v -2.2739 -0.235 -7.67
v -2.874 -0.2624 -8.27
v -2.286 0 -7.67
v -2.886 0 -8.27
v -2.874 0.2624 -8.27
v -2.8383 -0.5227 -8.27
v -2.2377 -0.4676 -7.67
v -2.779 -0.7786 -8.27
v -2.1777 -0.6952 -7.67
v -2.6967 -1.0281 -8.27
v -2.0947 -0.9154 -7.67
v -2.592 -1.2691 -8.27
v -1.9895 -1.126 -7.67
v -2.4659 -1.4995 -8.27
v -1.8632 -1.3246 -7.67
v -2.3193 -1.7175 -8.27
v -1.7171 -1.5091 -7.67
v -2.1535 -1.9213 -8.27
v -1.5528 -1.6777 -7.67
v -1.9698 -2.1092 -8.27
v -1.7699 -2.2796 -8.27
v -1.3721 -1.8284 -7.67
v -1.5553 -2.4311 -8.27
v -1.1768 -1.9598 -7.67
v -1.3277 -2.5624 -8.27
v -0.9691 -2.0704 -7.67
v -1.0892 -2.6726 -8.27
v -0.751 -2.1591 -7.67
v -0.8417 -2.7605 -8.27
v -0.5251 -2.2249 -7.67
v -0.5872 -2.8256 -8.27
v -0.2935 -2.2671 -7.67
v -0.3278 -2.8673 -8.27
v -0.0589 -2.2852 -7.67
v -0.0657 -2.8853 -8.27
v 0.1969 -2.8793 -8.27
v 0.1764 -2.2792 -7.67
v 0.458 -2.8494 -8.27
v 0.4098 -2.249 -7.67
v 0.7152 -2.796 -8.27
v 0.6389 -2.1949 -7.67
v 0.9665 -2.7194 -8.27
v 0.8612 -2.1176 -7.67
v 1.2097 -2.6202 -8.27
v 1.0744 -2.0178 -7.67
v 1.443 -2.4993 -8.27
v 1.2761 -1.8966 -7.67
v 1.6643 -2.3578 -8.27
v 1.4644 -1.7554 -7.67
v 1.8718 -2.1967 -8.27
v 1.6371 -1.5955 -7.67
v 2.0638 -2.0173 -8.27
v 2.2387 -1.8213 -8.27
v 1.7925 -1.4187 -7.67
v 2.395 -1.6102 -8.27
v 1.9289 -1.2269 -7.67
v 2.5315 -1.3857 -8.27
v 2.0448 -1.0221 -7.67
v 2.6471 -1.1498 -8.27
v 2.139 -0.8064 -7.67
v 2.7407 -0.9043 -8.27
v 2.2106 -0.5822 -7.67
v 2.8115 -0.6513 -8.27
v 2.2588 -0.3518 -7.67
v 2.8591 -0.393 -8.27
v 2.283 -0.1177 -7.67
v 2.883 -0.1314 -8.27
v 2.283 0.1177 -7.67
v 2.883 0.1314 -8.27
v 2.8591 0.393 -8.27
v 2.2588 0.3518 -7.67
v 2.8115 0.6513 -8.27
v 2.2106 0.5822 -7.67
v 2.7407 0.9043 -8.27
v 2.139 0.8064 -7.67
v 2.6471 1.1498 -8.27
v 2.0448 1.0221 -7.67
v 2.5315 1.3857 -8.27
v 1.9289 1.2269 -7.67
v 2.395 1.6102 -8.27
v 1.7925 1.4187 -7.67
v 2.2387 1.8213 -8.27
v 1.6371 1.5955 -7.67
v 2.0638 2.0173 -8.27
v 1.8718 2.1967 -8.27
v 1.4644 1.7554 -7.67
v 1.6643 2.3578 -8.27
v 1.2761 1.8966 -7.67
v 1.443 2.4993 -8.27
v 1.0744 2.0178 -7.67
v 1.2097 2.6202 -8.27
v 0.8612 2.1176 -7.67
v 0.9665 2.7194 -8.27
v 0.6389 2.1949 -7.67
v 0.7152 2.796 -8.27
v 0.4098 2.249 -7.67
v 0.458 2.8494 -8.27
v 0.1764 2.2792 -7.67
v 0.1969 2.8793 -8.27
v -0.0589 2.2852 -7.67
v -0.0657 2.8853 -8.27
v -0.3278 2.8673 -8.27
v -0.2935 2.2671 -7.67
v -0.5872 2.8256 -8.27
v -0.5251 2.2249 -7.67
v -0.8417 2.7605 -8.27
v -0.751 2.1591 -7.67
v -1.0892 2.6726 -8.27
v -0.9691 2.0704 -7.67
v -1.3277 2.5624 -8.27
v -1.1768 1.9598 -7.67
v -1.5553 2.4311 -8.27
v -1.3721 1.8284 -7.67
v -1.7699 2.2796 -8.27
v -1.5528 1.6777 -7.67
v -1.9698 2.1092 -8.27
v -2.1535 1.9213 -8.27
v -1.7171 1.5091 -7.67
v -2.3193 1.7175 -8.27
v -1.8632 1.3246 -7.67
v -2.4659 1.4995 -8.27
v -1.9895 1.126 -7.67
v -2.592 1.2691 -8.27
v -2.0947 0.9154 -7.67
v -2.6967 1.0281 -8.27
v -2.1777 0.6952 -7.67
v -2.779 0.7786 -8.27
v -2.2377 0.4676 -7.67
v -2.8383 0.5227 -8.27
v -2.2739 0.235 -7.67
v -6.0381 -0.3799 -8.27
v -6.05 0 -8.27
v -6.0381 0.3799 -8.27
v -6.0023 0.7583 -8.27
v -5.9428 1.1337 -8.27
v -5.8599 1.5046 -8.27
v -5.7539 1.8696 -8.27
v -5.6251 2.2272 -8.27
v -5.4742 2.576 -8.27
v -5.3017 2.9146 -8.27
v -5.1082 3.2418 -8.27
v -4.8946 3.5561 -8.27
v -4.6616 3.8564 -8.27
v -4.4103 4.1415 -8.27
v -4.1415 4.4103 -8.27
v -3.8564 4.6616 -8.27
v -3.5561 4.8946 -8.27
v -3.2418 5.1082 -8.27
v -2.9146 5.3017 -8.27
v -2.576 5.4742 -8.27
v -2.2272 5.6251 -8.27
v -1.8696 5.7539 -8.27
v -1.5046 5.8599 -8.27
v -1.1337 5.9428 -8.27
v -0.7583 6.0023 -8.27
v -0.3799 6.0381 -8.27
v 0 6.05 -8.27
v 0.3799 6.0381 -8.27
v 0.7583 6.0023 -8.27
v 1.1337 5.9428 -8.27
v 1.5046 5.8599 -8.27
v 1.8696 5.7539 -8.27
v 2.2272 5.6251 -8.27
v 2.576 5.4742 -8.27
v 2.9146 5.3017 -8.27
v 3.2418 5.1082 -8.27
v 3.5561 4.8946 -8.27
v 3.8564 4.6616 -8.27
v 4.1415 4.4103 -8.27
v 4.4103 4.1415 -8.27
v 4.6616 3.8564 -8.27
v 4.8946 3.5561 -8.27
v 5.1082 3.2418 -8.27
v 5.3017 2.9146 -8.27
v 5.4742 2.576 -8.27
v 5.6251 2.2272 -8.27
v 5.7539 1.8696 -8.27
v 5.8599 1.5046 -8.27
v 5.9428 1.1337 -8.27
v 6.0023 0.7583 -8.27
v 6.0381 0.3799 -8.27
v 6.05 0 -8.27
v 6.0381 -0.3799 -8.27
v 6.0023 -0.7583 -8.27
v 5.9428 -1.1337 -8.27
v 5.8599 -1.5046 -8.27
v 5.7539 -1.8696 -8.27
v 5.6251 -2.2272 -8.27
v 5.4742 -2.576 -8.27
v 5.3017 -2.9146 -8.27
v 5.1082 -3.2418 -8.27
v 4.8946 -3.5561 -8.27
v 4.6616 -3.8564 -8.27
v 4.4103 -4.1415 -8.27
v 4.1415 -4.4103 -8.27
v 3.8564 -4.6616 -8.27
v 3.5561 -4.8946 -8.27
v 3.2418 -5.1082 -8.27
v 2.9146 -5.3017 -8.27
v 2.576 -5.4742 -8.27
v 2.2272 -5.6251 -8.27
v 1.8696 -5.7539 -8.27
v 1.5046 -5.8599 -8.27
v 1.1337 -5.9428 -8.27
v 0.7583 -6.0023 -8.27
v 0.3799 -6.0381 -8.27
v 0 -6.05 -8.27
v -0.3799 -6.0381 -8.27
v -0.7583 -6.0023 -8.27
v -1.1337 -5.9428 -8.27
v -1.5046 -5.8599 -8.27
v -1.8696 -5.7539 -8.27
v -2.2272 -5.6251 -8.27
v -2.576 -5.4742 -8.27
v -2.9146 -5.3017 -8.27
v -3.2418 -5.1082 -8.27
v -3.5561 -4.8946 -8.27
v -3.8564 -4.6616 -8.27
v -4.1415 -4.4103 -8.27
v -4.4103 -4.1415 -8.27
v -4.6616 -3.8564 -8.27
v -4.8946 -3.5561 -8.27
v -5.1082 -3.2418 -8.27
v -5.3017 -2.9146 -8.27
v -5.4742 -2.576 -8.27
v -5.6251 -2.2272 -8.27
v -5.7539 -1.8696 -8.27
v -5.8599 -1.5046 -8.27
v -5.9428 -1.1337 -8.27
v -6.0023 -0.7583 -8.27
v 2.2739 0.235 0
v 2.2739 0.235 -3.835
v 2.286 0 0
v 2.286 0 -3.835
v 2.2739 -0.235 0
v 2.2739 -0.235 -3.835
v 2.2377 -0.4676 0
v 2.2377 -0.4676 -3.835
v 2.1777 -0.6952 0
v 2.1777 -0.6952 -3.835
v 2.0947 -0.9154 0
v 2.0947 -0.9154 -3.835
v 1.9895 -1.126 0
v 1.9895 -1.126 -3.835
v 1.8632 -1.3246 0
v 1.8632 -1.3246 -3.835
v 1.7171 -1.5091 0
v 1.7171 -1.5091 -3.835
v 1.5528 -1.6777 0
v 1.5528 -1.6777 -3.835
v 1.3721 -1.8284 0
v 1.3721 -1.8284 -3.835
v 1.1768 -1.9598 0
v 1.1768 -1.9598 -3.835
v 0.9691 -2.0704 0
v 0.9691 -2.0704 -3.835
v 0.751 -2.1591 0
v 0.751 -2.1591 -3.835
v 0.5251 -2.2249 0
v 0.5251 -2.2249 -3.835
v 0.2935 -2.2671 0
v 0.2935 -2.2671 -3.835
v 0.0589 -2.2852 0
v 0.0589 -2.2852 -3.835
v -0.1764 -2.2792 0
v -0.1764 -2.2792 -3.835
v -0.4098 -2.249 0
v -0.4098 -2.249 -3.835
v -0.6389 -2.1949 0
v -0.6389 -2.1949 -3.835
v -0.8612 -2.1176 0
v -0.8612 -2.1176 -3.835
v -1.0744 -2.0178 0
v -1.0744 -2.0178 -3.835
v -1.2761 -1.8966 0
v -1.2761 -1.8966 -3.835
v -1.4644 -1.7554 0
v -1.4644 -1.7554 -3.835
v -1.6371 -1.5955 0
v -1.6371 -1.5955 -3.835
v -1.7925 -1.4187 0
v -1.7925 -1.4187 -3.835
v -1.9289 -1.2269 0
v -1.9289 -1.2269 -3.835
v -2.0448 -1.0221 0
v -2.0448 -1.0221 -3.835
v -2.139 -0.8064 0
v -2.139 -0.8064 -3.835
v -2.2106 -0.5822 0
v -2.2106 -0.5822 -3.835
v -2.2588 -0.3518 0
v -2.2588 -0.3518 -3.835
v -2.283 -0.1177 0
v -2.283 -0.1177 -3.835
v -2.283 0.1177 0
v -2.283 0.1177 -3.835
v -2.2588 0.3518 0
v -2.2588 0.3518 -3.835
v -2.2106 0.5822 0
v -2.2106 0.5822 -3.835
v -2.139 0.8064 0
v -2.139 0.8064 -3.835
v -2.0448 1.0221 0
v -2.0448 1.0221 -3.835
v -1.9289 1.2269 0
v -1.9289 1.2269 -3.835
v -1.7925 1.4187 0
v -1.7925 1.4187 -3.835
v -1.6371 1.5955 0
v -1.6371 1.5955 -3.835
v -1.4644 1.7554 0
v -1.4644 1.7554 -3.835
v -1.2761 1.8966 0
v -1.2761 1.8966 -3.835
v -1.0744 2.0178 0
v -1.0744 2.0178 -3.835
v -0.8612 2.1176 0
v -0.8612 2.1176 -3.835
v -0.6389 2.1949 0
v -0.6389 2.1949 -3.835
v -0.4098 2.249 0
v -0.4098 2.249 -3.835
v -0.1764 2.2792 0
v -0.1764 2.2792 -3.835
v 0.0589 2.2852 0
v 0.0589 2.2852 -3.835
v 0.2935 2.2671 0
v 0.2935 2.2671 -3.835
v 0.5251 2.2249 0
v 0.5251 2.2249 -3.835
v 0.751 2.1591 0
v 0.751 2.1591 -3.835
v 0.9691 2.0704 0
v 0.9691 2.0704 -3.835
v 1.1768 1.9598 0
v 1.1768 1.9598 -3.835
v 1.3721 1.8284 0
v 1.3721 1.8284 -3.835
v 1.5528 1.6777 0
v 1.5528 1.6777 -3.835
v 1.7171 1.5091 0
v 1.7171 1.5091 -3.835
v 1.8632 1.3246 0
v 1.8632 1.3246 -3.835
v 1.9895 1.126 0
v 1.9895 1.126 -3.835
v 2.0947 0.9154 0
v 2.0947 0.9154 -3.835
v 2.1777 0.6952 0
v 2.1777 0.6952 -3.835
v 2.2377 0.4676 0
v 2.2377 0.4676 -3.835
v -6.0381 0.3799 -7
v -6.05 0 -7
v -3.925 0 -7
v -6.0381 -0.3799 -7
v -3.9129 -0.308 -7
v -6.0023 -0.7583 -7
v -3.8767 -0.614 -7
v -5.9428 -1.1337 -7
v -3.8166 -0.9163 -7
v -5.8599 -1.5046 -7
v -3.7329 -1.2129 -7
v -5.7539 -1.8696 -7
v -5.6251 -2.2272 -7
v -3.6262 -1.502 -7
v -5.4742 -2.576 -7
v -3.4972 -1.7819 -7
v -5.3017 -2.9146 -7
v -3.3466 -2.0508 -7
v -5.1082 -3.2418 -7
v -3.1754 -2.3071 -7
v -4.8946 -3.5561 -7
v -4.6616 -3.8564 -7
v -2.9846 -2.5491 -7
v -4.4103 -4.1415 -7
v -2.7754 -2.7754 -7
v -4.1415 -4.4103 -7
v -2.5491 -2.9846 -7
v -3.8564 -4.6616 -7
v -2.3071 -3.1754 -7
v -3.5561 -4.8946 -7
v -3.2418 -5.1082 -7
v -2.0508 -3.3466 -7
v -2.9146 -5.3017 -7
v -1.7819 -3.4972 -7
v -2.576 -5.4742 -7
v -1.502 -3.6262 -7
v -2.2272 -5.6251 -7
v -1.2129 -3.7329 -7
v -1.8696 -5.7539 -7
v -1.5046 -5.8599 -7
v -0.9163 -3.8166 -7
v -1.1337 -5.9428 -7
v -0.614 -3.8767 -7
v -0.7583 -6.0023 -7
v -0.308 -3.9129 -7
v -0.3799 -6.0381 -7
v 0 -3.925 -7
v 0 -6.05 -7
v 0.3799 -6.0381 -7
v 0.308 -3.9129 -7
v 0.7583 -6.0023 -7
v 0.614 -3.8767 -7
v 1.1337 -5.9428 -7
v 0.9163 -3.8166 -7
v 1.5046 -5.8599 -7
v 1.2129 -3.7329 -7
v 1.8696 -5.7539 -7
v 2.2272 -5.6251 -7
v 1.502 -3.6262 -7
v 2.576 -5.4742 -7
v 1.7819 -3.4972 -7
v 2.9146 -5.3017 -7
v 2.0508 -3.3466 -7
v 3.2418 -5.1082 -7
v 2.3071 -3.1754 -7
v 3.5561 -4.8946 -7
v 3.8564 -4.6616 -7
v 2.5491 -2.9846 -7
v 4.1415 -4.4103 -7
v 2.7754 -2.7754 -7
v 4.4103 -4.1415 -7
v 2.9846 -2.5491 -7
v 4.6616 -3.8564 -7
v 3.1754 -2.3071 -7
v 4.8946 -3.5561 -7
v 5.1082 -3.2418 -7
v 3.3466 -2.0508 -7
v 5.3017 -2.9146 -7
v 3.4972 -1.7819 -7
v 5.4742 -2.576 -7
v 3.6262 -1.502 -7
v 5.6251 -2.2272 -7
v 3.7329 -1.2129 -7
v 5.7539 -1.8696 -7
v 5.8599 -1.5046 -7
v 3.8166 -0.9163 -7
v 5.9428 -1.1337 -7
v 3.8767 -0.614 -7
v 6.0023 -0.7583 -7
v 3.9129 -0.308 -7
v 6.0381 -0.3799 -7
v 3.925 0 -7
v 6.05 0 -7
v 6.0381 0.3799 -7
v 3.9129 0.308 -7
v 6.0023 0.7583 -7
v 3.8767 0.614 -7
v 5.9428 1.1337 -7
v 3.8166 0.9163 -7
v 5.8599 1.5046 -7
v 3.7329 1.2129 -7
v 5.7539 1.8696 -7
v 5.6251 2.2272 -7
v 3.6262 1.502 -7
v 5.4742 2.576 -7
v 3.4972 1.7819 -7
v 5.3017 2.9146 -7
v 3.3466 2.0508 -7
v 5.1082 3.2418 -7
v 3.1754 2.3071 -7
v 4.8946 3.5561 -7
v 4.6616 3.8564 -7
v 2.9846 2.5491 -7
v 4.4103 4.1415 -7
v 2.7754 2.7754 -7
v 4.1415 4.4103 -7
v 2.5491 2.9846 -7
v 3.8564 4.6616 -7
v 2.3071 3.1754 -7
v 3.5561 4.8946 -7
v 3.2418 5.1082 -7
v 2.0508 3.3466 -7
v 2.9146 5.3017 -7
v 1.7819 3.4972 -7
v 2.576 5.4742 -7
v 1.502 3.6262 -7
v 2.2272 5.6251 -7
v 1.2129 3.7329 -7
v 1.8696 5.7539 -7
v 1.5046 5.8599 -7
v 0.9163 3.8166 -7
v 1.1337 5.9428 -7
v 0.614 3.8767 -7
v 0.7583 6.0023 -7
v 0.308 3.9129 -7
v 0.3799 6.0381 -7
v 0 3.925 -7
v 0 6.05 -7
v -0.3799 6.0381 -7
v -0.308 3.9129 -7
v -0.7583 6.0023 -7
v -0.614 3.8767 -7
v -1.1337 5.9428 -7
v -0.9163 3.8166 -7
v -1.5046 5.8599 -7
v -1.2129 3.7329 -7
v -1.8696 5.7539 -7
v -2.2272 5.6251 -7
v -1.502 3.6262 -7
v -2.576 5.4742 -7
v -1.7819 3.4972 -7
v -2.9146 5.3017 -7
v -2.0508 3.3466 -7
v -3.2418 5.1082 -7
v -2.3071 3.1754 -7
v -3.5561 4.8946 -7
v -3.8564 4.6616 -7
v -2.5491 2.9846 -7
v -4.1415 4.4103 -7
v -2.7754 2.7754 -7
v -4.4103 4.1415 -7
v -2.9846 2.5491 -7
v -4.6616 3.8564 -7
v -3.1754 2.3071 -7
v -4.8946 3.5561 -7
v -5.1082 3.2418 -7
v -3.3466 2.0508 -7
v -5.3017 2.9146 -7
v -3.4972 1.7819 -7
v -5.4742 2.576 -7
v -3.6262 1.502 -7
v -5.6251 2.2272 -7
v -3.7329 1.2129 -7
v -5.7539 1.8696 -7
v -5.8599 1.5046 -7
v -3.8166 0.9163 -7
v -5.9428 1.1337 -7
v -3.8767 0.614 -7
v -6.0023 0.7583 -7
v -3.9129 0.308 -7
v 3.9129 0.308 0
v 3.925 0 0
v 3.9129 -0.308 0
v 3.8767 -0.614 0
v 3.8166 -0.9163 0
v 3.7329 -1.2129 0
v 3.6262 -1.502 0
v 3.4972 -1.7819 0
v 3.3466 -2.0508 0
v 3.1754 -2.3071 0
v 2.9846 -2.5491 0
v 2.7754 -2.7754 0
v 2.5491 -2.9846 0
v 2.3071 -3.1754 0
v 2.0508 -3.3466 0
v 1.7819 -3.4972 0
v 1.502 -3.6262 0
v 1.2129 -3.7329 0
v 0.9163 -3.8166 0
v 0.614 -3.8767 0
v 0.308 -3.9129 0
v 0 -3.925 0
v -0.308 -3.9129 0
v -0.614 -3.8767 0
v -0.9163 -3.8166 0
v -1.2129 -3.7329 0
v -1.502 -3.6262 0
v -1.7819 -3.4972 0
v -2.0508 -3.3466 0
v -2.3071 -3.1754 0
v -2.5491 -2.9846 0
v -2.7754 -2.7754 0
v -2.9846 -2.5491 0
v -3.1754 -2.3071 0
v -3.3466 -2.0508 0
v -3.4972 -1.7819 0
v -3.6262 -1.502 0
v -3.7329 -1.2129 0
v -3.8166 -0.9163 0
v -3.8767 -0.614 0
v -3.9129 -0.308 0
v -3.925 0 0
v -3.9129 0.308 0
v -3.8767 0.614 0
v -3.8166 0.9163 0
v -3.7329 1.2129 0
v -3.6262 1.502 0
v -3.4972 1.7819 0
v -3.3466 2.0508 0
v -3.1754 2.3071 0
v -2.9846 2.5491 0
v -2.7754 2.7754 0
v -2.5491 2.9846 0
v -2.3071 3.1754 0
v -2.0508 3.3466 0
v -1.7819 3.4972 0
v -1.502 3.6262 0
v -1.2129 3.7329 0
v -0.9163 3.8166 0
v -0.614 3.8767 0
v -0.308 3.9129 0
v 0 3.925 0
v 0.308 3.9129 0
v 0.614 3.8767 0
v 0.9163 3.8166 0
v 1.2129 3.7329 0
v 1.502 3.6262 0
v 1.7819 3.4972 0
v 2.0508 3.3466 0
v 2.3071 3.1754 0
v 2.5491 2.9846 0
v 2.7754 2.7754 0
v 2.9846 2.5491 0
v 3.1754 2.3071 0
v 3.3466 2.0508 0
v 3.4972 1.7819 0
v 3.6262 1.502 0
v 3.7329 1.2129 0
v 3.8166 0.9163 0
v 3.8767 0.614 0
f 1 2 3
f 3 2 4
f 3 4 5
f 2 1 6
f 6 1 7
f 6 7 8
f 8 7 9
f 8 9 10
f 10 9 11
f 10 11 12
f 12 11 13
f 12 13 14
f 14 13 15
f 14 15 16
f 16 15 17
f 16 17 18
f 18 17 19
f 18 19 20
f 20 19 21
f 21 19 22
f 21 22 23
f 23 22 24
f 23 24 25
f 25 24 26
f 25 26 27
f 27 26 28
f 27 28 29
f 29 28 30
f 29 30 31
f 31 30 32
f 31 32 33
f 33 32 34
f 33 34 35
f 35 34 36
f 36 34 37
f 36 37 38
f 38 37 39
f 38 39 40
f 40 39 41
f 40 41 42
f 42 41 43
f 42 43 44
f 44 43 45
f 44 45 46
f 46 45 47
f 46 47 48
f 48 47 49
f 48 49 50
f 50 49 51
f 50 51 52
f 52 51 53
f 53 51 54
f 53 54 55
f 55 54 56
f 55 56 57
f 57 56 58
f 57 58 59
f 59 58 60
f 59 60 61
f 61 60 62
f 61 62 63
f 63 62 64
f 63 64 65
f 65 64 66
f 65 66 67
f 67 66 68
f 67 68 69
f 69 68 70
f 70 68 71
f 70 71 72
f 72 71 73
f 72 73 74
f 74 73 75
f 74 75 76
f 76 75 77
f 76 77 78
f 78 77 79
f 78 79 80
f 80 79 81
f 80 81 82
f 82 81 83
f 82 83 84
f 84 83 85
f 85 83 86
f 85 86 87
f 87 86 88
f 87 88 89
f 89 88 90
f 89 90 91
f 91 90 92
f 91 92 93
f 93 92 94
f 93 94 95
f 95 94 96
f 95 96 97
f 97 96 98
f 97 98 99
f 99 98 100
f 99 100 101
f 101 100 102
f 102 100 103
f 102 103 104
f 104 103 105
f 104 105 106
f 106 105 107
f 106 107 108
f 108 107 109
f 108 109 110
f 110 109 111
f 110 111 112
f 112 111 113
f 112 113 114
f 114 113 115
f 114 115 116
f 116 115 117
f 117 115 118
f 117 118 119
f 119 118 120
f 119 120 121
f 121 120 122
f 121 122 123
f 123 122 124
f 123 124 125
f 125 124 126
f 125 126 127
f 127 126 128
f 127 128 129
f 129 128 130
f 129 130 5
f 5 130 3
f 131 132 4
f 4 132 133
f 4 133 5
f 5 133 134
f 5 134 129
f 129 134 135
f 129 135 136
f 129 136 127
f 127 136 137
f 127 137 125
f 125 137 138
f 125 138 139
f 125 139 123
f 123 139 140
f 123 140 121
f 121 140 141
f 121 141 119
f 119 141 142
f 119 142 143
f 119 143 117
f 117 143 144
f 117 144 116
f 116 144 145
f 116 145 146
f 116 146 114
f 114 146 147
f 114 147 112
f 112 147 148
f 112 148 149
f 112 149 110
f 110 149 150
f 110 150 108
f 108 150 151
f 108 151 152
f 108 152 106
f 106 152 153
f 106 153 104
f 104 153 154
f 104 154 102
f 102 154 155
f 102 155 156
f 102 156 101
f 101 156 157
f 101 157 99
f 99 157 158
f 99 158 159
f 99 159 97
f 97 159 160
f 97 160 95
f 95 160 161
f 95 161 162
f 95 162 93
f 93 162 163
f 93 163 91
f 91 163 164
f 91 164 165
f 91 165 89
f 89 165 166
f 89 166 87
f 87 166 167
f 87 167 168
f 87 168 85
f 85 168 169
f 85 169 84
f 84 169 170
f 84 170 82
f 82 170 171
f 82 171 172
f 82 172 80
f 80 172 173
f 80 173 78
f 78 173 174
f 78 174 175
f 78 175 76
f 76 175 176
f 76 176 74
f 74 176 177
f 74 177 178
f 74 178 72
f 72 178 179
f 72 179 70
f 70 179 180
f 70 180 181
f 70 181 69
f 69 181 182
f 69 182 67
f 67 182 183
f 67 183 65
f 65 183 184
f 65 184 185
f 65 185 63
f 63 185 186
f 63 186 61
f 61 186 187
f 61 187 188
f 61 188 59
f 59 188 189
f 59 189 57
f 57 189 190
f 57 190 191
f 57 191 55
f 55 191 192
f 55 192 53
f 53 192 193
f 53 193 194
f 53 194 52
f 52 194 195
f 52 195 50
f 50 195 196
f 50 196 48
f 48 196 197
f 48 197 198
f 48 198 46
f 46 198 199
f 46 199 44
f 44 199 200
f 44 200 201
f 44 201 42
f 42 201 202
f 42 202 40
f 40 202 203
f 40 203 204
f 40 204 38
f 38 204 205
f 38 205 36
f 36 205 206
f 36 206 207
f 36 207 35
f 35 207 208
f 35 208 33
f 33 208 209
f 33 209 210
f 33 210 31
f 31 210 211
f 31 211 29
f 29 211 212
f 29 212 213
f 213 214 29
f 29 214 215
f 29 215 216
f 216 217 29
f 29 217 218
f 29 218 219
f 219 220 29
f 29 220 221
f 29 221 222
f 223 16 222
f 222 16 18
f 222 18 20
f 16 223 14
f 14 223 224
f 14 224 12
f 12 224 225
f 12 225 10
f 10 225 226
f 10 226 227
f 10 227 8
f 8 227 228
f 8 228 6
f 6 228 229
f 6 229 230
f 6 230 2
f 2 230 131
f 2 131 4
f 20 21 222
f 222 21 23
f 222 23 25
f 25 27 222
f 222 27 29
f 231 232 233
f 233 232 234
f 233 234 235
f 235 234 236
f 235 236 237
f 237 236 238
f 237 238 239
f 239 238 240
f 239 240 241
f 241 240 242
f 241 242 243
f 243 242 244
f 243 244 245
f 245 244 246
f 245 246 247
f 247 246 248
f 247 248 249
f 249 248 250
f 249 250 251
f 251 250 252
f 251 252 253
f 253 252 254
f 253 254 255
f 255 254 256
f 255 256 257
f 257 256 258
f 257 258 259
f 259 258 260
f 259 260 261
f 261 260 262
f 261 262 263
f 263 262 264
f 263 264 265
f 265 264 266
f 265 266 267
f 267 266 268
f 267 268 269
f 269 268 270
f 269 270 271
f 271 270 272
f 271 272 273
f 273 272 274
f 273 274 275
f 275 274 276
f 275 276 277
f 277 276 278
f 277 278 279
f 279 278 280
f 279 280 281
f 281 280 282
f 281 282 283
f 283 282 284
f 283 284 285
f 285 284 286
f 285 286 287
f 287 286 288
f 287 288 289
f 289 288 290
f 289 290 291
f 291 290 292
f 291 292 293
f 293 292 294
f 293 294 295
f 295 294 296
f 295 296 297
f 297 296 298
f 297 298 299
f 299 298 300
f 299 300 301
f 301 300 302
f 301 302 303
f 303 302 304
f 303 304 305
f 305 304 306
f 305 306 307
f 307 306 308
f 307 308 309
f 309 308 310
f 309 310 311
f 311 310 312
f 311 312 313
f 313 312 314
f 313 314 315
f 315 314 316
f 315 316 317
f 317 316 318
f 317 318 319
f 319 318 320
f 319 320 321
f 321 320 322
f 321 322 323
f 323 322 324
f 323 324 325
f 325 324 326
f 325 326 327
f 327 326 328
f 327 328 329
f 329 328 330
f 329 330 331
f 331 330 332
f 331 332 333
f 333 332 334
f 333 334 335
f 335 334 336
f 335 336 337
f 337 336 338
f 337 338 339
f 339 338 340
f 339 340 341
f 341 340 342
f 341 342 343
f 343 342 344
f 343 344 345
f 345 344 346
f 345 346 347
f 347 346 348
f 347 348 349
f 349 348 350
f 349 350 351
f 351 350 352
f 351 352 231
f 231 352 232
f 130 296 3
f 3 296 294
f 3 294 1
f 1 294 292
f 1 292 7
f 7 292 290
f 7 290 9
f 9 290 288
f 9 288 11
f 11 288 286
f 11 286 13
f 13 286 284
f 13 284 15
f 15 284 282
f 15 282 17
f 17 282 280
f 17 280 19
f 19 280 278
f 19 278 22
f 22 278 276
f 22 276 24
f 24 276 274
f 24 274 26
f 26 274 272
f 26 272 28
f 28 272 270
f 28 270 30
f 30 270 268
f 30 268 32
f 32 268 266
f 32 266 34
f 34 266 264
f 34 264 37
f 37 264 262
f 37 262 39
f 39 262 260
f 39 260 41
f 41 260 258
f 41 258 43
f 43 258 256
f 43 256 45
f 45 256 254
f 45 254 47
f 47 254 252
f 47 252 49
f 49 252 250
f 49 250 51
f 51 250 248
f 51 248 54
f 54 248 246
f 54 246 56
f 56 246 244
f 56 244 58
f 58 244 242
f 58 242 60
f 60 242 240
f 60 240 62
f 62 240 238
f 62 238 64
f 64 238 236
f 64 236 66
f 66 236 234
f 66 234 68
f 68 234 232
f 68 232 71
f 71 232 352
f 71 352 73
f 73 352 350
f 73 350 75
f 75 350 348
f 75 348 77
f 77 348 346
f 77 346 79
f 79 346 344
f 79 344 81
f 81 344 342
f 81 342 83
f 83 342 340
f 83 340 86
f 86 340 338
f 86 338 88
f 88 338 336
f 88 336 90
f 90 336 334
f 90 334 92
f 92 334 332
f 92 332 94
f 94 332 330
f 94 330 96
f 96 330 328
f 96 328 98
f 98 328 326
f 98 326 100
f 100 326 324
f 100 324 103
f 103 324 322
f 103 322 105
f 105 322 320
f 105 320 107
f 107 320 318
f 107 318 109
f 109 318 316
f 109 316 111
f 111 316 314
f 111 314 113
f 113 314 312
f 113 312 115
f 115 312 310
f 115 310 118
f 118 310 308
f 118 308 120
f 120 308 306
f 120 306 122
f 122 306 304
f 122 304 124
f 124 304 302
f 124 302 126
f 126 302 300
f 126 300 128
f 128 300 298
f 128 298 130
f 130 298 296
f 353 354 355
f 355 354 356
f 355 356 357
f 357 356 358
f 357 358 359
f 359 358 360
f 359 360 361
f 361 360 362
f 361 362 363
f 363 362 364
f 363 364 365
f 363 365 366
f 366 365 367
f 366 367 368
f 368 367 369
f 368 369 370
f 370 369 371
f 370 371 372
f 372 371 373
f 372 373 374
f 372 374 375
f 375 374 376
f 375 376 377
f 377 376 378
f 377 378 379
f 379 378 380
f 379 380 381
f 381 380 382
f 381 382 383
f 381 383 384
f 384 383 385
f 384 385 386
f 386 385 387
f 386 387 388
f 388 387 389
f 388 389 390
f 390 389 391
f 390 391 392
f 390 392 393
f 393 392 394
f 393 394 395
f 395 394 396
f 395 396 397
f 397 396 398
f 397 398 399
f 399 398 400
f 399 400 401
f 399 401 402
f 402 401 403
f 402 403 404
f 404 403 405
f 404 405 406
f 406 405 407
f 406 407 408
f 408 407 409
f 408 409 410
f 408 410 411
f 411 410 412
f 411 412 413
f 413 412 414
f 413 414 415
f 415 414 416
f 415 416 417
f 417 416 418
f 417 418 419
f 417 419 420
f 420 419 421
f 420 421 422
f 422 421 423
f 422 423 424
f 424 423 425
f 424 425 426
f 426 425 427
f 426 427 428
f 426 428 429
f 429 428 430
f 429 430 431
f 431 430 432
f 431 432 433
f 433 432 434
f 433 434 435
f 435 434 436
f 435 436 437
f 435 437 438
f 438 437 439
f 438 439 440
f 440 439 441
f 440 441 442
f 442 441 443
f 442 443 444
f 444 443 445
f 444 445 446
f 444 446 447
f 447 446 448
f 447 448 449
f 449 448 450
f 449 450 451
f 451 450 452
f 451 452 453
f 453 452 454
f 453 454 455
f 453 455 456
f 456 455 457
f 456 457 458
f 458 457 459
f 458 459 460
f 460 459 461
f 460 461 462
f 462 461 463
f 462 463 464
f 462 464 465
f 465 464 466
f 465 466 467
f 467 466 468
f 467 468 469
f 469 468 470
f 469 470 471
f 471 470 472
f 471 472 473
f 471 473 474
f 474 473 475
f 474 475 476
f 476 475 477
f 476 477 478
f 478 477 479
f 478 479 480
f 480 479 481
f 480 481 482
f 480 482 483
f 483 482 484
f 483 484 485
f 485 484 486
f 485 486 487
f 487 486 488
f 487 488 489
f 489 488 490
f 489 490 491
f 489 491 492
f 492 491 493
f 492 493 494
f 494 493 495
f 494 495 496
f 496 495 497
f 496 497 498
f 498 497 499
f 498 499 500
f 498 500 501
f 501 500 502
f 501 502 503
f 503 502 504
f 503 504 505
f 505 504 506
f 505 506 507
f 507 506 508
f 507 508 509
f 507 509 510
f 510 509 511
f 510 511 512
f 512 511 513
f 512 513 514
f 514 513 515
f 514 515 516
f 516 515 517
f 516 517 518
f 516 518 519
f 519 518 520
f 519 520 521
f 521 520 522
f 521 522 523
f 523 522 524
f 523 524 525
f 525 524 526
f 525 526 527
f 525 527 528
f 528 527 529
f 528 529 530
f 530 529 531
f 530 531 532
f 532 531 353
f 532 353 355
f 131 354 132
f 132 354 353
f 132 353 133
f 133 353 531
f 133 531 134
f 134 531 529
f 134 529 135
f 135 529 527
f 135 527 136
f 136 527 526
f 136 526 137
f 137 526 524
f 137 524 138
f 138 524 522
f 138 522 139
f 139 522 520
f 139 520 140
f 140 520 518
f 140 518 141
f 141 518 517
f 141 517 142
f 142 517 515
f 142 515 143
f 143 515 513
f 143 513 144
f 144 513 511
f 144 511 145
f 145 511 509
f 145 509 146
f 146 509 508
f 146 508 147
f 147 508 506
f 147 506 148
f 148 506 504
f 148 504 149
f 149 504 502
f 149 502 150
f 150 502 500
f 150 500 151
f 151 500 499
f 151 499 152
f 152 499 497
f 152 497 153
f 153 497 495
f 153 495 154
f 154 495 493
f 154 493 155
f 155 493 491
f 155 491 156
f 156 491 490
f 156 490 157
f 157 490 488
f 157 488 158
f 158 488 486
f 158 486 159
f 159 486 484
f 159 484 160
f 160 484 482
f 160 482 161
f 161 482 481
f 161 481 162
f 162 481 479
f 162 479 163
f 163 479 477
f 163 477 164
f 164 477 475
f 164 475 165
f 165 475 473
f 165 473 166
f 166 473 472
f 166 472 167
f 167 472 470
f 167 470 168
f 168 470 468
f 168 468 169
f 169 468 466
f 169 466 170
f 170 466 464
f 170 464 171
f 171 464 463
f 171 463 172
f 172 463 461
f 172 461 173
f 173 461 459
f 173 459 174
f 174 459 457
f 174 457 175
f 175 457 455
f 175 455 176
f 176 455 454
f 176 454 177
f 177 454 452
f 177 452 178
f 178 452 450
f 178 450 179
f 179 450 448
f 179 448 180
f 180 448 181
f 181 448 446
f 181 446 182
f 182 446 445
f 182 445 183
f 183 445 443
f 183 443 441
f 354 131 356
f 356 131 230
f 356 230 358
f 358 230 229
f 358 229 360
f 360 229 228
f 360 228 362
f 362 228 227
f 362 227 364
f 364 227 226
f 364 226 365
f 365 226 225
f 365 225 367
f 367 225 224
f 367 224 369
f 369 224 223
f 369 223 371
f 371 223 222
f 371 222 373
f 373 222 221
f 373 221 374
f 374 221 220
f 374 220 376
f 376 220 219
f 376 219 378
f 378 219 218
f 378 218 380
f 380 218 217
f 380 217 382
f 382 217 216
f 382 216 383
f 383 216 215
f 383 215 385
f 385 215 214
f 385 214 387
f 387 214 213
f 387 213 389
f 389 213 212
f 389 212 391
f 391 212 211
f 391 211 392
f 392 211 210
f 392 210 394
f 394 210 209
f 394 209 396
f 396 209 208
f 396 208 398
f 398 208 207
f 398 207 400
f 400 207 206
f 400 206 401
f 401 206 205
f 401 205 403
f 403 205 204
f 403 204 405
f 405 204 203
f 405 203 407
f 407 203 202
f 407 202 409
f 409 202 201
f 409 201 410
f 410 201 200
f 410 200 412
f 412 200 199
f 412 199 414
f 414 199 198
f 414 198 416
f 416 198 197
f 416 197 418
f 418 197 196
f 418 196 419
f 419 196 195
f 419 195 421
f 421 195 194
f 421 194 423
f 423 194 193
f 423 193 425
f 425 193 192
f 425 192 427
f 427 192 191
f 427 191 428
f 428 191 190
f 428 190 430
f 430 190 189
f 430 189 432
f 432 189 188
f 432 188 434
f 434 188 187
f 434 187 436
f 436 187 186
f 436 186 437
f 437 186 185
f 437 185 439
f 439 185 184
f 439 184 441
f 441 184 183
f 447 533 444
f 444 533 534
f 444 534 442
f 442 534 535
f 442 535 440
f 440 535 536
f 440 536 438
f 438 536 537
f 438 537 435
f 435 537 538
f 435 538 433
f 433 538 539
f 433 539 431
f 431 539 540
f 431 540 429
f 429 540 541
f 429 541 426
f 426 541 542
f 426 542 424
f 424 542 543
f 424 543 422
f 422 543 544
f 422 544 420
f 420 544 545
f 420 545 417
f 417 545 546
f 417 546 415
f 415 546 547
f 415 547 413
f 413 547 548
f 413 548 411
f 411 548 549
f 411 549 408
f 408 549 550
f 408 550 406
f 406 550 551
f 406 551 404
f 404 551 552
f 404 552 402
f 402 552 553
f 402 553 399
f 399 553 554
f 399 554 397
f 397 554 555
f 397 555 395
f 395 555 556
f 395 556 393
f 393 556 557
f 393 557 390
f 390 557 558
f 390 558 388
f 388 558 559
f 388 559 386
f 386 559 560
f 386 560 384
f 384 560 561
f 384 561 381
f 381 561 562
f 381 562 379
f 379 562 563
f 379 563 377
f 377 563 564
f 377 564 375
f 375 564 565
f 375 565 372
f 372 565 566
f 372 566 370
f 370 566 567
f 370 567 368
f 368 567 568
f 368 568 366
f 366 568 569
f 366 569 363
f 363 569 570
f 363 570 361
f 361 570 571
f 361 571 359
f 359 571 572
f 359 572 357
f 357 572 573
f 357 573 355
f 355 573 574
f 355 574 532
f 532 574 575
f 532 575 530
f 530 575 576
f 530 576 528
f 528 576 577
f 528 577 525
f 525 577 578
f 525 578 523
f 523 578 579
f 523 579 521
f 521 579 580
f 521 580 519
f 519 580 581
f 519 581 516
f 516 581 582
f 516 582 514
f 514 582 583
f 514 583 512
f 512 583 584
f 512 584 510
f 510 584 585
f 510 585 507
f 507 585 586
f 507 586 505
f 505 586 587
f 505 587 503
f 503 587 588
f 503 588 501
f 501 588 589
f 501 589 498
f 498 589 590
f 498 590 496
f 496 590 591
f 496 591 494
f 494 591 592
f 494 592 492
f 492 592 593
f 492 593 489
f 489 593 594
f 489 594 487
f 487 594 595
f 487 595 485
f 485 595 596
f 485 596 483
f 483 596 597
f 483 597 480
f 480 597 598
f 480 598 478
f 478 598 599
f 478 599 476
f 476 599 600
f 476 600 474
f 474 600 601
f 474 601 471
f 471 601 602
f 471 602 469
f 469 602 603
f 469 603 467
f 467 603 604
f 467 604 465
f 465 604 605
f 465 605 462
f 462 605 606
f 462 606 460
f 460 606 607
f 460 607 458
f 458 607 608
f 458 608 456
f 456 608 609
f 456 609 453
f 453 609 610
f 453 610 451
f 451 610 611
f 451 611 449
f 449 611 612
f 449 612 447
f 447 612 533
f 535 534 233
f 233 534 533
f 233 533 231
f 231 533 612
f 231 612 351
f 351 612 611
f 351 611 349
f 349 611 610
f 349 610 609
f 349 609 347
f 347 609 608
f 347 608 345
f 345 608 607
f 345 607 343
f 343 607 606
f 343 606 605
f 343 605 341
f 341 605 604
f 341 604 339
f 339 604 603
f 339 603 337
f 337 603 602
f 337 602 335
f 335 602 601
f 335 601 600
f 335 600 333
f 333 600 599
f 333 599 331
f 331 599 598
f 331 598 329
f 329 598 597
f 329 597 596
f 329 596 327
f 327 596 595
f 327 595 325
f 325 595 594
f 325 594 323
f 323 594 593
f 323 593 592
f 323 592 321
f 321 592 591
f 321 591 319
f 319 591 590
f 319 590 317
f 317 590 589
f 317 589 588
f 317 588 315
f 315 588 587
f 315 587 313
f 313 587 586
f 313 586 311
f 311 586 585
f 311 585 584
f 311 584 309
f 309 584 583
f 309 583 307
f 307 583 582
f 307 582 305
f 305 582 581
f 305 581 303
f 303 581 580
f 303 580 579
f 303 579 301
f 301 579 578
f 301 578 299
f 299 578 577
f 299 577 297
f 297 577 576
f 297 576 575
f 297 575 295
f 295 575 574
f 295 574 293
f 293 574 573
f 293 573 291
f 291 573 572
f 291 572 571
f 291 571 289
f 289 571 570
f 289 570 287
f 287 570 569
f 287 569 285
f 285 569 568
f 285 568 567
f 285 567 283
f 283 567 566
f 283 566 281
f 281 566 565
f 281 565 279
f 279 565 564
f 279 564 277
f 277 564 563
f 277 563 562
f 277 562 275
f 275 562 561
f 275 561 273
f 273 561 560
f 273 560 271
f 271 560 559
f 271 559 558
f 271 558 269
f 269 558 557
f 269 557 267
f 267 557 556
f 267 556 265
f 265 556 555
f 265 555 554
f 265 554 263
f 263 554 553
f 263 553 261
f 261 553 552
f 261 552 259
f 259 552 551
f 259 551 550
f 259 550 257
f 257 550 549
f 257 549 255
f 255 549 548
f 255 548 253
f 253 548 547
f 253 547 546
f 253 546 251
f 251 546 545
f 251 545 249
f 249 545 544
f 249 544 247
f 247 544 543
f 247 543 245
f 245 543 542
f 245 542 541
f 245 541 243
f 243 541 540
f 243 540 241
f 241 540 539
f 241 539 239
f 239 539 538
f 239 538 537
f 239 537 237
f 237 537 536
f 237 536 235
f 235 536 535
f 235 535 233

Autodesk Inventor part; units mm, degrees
ref_plane "YZ Plane" through (0, 0, 0) normal (1, 0, 0) x (0, 1, 0)
ref_plane "XZ Plane" through (0, 0, 0) normal (0, 1, 0) x (-1, 0, 0)
ref_plane "XY Plane" through (0, 0, 0) normal (0, 0, 1) x (1, 0, 0)
sketch "Sketch1" plane through (0, 0, 0) normal (0, 0, 1) x (1, 0, 0)
  circle A0 centre (0, 0) radius 3.925
  circle A1 centre (0, 0) radius 2.286
  dimension "d0" = 7.85
  dimension "d1" = 4.572
extrude "Extrusion1" add sketch "Sketch1" against normal blind 7
sketch "Sketch2" plane through (0, 0, -7) normal (0, 0, -1) x (-1, 0, 0)
  circle A0 centre (0, 0) radius 6.05
  circle A1 centre (0, 0) radius 2.286 projected
  dimension "d4" = 12.1
extrude "Extrusion2" add sketch "Sketch2" along normal blind 1.27
chamfer "Chamfer1" distance 0.6 angle 45 1 edges at (2.286, 0, -8.27)
properties part number "bearingsleeve_3DPrint"
